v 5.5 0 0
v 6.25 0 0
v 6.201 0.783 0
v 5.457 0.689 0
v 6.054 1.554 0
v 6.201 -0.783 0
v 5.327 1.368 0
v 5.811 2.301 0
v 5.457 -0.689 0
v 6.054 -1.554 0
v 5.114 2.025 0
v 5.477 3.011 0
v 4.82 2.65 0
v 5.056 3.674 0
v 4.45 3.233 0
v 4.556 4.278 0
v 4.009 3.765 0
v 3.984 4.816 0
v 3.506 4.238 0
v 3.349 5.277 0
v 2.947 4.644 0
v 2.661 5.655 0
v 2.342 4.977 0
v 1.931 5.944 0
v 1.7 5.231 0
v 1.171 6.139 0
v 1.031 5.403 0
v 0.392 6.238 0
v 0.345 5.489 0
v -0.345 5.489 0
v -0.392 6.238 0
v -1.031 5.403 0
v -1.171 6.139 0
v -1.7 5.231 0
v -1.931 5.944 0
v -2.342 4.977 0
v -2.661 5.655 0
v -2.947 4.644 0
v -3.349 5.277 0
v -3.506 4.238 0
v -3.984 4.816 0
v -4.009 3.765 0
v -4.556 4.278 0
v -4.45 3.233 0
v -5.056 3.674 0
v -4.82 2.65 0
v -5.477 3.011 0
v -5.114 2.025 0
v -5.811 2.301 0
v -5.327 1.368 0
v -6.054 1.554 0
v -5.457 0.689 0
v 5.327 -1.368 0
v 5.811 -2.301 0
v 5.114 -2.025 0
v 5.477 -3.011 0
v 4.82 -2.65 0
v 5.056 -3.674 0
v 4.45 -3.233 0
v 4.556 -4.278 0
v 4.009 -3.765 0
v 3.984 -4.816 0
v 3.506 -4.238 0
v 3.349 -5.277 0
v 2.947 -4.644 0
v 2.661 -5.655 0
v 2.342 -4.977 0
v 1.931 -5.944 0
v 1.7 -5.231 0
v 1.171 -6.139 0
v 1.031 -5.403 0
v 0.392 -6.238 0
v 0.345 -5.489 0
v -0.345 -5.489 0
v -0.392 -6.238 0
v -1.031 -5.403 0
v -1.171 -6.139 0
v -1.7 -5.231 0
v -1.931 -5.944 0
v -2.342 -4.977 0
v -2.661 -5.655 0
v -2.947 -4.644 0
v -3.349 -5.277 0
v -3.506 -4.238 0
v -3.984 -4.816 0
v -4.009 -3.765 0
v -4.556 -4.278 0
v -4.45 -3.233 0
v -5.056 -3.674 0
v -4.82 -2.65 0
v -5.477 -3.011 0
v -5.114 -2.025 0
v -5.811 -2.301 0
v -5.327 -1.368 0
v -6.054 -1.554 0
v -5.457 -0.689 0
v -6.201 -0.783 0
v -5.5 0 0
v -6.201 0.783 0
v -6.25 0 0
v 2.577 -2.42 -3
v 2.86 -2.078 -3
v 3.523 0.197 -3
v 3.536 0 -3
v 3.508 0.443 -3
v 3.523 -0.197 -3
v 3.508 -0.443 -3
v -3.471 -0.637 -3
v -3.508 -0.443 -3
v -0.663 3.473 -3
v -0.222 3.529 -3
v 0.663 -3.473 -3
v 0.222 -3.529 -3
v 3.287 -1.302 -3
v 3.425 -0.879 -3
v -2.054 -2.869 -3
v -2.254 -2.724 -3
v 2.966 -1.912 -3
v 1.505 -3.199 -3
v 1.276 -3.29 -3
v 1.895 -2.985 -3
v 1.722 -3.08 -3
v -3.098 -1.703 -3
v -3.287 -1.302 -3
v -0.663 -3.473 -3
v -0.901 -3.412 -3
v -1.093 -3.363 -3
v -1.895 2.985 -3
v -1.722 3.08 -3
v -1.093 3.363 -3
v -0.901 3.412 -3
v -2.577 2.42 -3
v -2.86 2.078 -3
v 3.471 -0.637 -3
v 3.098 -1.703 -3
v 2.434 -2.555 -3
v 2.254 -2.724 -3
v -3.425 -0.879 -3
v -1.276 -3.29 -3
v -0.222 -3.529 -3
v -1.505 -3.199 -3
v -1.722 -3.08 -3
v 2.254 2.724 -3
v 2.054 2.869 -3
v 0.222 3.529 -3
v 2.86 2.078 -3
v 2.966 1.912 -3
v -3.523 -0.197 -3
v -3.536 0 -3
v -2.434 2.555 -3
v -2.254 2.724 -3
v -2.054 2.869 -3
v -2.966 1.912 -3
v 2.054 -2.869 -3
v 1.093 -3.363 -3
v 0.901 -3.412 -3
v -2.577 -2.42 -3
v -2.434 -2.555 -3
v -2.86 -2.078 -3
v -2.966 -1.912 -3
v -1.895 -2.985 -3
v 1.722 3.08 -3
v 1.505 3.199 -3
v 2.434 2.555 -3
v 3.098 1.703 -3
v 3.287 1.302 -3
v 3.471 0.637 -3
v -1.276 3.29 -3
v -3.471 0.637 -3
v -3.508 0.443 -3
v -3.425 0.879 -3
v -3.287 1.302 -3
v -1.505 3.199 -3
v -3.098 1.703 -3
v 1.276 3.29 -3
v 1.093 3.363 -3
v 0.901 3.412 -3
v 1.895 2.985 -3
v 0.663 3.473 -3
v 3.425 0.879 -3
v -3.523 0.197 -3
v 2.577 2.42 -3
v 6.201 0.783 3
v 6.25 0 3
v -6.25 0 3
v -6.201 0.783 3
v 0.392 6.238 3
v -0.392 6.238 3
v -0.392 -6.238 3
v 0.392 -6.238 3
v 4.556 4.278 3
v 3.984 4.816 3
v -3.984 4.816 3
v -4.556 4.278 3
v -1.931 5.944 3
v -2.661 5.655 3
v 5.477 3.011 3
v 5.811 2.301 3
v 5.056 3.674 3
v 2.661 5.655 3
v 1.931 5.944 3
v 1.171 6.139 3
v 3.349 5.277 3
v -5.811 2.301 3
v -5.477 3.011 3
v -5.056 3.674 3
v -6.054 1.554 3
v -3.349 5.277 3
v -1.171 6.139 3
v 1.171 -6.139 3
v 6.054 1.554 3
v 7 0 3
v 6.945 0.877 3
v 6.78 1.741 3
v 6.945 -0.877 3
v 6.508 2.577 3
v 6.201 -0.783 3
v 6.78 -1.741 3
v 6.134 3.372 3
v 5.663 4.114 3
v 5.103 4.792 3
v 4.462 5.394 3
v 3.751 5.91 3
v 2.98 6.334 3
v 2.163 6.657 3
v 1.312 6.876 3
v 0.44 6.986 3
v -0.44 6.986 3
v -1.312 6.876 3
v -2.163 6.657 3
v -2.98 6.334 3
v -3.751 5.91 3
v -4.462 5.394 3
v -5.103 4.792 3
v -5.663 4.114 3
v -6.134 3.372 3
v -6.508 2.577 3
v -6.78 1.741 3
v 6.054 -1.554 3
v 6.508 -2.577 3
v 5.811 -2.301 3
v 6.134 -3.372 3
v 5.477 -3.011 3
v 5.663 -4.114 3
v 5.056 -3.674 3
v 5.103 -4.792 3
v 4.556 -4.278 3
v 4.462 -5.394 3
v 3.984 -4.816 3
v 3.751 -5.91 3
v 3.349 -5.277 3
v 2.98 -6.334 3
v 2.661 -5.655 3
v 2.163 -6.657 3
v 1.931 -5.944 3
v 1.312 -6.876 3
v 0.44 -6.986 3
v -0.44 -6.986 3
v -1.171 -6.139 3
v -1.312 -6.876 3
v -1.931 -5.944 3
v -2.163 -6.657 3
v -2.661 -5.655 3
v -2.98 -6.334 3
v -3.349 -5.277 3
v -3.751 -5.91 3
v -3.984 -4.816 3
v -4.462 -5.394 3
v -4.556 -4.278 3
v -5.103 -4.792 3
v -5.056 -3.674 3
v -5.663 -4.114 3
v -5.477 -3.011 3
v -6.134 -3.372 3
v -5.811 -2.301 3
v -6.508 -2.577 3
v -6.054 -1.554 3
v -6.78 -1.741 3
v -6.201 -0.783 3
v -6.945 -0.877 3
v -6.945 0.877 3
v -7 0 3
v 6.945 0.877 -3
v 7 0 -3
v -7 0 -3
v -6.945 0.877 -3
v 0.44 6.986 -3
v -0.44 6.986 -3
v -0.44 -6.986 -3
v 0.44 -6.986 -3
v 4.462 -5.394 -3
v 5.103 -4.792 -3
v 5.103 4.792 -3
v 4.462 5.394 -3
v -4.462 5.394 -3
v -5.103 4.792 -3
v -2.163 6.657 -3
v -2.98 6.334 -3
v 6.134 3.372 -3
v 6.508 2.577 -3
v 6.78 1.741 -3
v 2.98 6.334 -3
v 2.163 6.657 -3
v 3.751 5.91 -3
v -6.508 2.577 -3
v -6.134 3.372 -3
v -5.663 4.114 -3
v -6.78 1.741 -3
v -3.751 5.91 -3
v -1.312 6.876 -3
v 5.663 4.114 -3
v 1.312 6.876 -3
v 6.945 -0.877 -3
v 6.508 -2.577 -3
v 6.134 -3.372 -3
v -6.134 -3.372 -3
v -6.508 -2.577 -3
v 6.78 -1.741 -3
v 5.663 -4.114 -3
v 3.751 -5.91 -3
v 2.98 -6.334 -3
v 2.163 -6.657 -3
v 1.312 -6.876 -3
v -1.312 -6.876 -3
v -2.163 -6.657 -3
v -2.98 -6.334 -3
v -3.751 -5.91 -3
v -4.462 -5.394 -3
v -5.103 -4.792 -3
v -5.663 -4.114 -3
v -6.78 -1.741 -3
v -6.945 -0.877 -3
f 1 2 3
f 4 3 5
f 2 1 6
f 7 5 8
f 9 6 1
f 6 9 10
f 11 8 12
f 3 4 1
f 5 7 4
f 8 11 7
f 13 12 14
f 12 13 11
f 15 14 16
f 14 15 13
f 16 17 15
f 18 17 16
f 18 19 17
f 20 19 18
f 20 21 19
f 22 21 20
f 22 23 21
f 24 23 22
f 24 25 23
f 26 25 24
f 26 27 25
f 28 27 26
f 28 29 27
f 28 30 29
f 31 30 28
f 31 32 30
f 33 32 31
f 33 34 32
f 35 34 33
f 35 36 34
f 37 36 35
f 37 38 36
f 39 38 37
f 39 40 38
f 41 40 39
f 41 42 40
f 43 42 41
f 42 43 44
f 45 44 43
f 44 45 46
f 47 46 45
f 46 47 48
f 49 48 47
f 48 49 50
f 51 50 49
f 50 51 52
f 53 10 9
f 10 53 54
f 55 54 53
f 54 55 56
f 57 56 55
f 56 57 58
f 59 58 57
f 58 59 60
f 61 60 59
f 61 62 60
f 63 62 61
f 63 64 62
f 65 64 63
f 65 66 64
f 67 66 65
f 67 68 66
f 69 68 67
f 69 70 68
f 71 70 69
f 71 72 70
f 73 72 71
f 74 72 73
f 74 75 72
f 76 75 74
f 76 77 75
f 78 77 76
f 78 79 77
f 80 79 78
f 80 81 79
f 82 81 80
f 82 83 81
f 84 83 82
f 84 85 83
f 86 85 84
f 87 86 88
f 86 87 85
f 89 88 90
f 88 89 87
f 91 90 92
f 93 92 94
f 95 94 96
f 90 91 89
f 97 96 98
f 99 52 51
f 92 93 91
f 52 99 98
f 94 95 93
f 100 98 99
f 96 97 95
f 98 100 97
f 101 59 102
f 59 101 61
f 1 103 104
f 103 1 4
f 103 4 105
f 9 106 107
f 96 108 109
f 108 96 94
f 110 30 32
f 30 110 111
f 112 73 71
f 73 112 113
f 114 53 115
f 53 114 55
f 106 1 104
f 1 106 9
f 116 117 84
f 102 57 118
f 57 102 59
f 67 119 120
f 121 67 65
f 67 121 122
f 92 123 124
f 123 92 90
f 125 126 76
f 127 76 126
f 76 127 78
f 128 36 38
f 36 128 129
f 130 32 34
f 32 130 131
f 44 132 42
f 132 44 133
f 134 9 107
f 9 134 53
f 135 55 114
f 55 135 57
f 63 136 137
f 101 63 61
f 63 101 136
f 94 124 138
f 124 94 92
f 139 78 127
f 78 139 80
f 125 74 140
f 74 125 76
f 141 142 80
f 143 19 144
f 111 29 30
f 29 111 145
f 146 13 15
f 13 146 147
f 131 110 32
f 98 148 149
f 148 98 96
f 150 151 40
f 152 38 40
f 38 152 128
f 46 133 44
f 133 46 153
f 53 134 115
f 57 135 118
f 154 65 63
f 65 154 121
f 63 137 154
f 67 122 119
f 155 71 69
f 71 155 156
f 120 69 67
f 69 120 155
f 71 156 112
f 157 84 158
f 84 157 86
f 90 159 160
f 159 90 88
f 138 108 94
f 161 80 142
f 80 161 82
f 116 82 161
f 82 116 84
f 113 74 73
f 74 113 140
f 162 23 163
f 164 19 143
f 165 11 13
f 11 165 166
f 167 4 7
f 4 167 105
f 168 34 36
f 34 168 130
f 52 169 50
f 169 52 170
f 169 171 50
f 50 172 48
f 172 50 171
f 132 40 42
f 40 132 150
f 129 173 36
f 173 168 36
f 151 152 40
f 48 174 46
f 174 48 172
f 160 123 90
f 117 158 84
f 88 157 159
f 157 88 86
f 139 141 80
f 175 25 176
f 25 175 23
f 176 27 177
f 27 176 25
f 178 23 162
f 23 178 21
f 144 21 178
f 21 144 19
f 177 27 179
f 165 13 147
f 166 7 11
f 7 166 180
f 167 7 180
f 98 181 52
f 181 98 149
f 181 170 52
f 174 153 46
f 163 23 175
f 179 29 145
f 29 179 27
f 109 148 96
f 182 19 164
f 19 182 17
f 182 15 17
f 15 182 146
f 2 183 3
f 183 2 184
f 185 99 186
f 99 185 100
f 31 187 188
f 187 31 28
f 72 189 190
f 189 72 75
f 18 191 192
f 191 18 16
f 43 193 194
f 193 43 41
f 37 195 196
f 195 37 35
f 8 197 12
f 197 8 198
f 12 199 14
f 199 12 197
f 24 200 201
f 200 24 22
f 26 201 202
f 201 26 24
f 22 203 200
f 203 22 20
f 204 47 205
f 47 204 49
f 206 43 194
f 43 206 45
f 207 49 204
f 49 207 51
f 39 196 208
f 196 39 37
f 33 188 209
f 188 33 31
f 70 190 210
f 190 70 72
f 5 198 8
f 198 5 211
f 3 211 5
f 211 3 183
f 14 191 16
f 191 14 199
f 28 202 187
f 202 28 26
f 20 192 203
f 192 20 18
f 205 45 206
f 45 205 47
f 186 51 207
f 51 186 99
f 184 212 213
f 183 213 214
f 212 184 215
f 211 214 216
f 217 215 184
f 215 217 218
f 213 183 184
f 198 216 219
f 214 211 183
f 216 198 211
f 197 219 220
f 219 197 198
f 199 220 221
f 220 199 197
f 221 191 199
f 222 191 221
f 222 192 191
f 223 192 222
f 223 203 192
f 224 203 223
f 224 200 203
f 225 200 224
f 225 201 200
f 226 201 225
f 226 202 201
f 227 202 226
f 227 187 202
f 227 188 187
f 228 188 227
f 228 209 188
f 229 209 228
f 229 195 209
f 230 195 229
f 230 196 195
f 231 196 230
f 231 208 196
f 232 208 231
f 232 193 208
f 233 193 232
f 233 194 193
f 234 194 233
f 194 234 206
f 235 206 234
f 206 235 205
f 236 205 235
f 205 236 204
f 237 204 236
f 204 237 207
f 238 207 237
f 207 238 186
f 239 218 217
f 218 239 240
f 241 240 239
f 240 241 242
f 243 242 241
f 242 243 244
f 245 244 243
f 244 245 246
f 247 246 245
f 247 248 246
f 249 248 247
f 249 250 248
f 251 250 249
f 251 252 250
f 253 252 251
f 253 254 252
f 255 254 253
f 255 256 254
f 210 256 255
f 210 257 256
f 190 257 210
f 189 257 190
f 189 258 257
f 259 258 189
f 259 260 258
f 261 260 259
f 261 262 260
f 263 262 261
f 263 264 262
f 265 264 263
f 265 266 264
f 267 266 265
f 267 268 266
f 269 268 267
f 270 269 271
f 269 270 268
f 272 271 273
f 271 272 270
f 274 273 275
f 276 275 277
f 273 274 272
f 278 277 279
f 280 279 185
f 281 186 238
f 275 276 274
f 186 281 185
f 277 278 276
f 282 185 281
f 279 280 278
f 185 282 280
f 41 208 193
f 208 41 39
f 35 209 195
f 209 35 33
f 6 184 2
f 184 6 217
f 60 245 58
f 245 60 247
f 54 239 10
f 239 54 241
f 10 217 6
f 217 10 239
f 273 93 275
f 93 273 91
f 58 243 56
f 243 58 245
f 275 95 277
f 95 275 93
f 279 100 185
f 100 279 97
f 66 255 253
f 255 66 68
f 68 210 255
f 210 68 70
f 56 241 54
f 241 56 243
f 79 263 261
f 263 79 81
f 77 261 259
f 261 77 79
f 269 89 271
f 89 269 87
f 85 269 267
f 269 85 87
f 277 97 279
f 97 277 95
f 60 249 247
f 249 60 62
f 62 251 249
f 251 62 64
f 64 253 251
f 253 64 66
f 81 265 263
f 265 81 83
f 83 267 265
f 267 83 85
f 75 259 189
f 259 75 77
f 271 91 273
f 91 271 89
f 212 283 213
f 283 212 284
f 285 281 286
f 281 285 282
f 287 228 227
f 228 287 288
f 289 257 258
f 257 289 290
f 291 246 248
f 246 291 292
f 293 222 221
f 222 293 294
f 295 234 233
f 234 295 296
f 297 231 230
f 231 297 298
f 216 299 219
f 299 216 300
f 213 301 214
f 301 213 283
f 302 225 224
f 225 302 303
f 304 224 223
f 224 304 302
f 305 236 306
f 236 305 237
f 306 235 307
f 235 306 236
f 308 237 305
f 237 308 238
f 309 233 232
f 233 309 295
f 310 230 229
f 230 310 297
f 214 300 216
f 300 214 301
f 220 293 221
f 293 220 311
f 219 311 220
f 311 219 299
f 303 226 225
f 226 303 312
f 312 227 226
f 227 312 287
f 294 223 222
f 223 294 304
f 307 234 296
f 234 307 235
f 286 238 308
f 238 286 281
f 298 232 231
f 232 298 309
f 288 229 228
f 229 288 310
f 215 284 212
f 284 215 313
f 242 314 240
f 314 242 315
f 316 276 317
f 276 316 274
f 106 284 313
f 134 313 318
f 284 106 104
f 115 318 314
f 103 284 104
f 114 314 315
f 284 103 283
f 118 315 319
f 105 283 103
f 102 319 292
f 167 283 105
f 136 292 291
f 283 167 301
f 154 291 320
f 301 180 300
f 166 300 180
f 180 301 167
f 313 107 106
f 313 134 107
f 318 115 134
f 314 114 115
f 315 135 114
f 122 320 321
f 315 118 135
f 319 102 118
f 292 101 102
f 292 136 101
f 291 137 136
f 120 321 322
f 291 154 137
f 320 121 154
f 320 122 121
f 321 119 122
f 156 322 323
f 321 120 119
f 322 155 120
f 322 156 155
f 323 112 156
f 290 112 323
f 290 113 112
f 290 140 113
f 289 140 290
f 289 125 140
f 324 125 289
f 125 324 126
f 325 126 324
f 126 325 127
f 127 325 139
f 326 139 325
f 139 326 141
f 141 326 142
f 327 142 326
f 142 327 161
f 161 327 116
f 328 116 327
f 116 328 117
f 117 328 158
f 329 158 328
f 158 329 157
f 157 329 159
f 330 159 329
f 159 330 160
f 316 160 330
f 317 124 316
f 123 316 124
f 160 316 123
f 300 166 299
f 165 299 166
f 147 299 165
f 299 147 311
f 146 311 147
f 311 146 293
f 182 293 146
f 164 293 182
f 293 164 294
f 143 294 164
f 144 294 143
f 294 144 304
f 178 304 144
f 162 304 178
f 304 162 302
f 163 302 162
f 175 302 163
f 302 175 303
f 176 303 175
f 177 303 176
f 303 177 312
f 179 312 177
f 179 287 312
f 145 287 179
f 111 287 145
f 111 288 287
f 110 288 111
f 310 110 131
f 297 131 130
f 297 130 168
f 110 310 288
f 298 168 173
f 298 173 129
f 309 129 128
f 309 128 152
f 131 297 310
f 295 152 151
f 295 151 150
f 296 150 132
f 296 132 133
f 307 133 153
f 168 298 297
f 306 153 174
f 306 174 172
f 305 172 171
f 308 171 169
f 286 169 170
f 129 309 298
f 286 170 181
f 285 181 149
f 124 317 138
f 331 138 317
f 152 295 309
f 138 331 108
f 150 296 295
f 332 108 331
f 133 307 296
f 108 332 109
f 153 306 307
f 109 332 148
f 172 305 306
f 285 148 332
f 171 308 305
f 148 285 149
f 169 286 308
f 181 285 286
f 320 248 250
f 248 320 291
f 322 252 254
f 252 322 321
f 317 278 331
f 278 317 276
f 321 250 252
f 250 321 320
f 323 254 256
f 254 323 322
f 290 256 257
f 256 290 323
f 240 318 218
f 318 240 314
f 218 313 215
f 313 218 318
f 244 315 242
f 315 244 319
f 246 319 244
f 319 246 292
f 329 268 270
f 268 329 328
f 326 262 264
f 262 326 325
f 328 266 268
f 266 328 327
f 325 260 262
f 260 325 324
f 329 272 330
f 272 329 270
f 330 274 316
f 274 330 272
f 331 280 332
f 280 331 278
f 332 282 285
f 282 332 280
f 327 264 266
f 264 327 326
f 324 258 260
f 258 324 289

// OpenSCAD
$fn = 50;


difference() {
	union() {
		translate(v = [0, 0, -3.0000000000]) {
			cylinder(h = 6, r = 7.0000000000);
		}
	}
	union() {
		translate(v = [0, 0, 0]) {
			rotate(a = [0, 0, 0]) {
				difference() {
					union() {
						translate(v = [0, 0, -6.0000000000]) {
							cylinder(h = 6, r = 2.2500000000);
						}
						translate(v = [0, 0, -4.2000000000]) {
							cylinder(h = 4.2000000000, r1 = 2.7500000000, r2 = 5.5000000000);
						}
						translate(v = [0, 0, -6.0000000000]) {
							cylinder(h = 6, r = 2.7500000000);
						}
						translate(v = [0, 0, -6.0000000000]) {
							cylinder(h = 6, r = 2.2500000000);
						}
					}
					union();
				}
			}
		}
		#cylinder(h = 3, r = 6.2500000000);
	}
}
